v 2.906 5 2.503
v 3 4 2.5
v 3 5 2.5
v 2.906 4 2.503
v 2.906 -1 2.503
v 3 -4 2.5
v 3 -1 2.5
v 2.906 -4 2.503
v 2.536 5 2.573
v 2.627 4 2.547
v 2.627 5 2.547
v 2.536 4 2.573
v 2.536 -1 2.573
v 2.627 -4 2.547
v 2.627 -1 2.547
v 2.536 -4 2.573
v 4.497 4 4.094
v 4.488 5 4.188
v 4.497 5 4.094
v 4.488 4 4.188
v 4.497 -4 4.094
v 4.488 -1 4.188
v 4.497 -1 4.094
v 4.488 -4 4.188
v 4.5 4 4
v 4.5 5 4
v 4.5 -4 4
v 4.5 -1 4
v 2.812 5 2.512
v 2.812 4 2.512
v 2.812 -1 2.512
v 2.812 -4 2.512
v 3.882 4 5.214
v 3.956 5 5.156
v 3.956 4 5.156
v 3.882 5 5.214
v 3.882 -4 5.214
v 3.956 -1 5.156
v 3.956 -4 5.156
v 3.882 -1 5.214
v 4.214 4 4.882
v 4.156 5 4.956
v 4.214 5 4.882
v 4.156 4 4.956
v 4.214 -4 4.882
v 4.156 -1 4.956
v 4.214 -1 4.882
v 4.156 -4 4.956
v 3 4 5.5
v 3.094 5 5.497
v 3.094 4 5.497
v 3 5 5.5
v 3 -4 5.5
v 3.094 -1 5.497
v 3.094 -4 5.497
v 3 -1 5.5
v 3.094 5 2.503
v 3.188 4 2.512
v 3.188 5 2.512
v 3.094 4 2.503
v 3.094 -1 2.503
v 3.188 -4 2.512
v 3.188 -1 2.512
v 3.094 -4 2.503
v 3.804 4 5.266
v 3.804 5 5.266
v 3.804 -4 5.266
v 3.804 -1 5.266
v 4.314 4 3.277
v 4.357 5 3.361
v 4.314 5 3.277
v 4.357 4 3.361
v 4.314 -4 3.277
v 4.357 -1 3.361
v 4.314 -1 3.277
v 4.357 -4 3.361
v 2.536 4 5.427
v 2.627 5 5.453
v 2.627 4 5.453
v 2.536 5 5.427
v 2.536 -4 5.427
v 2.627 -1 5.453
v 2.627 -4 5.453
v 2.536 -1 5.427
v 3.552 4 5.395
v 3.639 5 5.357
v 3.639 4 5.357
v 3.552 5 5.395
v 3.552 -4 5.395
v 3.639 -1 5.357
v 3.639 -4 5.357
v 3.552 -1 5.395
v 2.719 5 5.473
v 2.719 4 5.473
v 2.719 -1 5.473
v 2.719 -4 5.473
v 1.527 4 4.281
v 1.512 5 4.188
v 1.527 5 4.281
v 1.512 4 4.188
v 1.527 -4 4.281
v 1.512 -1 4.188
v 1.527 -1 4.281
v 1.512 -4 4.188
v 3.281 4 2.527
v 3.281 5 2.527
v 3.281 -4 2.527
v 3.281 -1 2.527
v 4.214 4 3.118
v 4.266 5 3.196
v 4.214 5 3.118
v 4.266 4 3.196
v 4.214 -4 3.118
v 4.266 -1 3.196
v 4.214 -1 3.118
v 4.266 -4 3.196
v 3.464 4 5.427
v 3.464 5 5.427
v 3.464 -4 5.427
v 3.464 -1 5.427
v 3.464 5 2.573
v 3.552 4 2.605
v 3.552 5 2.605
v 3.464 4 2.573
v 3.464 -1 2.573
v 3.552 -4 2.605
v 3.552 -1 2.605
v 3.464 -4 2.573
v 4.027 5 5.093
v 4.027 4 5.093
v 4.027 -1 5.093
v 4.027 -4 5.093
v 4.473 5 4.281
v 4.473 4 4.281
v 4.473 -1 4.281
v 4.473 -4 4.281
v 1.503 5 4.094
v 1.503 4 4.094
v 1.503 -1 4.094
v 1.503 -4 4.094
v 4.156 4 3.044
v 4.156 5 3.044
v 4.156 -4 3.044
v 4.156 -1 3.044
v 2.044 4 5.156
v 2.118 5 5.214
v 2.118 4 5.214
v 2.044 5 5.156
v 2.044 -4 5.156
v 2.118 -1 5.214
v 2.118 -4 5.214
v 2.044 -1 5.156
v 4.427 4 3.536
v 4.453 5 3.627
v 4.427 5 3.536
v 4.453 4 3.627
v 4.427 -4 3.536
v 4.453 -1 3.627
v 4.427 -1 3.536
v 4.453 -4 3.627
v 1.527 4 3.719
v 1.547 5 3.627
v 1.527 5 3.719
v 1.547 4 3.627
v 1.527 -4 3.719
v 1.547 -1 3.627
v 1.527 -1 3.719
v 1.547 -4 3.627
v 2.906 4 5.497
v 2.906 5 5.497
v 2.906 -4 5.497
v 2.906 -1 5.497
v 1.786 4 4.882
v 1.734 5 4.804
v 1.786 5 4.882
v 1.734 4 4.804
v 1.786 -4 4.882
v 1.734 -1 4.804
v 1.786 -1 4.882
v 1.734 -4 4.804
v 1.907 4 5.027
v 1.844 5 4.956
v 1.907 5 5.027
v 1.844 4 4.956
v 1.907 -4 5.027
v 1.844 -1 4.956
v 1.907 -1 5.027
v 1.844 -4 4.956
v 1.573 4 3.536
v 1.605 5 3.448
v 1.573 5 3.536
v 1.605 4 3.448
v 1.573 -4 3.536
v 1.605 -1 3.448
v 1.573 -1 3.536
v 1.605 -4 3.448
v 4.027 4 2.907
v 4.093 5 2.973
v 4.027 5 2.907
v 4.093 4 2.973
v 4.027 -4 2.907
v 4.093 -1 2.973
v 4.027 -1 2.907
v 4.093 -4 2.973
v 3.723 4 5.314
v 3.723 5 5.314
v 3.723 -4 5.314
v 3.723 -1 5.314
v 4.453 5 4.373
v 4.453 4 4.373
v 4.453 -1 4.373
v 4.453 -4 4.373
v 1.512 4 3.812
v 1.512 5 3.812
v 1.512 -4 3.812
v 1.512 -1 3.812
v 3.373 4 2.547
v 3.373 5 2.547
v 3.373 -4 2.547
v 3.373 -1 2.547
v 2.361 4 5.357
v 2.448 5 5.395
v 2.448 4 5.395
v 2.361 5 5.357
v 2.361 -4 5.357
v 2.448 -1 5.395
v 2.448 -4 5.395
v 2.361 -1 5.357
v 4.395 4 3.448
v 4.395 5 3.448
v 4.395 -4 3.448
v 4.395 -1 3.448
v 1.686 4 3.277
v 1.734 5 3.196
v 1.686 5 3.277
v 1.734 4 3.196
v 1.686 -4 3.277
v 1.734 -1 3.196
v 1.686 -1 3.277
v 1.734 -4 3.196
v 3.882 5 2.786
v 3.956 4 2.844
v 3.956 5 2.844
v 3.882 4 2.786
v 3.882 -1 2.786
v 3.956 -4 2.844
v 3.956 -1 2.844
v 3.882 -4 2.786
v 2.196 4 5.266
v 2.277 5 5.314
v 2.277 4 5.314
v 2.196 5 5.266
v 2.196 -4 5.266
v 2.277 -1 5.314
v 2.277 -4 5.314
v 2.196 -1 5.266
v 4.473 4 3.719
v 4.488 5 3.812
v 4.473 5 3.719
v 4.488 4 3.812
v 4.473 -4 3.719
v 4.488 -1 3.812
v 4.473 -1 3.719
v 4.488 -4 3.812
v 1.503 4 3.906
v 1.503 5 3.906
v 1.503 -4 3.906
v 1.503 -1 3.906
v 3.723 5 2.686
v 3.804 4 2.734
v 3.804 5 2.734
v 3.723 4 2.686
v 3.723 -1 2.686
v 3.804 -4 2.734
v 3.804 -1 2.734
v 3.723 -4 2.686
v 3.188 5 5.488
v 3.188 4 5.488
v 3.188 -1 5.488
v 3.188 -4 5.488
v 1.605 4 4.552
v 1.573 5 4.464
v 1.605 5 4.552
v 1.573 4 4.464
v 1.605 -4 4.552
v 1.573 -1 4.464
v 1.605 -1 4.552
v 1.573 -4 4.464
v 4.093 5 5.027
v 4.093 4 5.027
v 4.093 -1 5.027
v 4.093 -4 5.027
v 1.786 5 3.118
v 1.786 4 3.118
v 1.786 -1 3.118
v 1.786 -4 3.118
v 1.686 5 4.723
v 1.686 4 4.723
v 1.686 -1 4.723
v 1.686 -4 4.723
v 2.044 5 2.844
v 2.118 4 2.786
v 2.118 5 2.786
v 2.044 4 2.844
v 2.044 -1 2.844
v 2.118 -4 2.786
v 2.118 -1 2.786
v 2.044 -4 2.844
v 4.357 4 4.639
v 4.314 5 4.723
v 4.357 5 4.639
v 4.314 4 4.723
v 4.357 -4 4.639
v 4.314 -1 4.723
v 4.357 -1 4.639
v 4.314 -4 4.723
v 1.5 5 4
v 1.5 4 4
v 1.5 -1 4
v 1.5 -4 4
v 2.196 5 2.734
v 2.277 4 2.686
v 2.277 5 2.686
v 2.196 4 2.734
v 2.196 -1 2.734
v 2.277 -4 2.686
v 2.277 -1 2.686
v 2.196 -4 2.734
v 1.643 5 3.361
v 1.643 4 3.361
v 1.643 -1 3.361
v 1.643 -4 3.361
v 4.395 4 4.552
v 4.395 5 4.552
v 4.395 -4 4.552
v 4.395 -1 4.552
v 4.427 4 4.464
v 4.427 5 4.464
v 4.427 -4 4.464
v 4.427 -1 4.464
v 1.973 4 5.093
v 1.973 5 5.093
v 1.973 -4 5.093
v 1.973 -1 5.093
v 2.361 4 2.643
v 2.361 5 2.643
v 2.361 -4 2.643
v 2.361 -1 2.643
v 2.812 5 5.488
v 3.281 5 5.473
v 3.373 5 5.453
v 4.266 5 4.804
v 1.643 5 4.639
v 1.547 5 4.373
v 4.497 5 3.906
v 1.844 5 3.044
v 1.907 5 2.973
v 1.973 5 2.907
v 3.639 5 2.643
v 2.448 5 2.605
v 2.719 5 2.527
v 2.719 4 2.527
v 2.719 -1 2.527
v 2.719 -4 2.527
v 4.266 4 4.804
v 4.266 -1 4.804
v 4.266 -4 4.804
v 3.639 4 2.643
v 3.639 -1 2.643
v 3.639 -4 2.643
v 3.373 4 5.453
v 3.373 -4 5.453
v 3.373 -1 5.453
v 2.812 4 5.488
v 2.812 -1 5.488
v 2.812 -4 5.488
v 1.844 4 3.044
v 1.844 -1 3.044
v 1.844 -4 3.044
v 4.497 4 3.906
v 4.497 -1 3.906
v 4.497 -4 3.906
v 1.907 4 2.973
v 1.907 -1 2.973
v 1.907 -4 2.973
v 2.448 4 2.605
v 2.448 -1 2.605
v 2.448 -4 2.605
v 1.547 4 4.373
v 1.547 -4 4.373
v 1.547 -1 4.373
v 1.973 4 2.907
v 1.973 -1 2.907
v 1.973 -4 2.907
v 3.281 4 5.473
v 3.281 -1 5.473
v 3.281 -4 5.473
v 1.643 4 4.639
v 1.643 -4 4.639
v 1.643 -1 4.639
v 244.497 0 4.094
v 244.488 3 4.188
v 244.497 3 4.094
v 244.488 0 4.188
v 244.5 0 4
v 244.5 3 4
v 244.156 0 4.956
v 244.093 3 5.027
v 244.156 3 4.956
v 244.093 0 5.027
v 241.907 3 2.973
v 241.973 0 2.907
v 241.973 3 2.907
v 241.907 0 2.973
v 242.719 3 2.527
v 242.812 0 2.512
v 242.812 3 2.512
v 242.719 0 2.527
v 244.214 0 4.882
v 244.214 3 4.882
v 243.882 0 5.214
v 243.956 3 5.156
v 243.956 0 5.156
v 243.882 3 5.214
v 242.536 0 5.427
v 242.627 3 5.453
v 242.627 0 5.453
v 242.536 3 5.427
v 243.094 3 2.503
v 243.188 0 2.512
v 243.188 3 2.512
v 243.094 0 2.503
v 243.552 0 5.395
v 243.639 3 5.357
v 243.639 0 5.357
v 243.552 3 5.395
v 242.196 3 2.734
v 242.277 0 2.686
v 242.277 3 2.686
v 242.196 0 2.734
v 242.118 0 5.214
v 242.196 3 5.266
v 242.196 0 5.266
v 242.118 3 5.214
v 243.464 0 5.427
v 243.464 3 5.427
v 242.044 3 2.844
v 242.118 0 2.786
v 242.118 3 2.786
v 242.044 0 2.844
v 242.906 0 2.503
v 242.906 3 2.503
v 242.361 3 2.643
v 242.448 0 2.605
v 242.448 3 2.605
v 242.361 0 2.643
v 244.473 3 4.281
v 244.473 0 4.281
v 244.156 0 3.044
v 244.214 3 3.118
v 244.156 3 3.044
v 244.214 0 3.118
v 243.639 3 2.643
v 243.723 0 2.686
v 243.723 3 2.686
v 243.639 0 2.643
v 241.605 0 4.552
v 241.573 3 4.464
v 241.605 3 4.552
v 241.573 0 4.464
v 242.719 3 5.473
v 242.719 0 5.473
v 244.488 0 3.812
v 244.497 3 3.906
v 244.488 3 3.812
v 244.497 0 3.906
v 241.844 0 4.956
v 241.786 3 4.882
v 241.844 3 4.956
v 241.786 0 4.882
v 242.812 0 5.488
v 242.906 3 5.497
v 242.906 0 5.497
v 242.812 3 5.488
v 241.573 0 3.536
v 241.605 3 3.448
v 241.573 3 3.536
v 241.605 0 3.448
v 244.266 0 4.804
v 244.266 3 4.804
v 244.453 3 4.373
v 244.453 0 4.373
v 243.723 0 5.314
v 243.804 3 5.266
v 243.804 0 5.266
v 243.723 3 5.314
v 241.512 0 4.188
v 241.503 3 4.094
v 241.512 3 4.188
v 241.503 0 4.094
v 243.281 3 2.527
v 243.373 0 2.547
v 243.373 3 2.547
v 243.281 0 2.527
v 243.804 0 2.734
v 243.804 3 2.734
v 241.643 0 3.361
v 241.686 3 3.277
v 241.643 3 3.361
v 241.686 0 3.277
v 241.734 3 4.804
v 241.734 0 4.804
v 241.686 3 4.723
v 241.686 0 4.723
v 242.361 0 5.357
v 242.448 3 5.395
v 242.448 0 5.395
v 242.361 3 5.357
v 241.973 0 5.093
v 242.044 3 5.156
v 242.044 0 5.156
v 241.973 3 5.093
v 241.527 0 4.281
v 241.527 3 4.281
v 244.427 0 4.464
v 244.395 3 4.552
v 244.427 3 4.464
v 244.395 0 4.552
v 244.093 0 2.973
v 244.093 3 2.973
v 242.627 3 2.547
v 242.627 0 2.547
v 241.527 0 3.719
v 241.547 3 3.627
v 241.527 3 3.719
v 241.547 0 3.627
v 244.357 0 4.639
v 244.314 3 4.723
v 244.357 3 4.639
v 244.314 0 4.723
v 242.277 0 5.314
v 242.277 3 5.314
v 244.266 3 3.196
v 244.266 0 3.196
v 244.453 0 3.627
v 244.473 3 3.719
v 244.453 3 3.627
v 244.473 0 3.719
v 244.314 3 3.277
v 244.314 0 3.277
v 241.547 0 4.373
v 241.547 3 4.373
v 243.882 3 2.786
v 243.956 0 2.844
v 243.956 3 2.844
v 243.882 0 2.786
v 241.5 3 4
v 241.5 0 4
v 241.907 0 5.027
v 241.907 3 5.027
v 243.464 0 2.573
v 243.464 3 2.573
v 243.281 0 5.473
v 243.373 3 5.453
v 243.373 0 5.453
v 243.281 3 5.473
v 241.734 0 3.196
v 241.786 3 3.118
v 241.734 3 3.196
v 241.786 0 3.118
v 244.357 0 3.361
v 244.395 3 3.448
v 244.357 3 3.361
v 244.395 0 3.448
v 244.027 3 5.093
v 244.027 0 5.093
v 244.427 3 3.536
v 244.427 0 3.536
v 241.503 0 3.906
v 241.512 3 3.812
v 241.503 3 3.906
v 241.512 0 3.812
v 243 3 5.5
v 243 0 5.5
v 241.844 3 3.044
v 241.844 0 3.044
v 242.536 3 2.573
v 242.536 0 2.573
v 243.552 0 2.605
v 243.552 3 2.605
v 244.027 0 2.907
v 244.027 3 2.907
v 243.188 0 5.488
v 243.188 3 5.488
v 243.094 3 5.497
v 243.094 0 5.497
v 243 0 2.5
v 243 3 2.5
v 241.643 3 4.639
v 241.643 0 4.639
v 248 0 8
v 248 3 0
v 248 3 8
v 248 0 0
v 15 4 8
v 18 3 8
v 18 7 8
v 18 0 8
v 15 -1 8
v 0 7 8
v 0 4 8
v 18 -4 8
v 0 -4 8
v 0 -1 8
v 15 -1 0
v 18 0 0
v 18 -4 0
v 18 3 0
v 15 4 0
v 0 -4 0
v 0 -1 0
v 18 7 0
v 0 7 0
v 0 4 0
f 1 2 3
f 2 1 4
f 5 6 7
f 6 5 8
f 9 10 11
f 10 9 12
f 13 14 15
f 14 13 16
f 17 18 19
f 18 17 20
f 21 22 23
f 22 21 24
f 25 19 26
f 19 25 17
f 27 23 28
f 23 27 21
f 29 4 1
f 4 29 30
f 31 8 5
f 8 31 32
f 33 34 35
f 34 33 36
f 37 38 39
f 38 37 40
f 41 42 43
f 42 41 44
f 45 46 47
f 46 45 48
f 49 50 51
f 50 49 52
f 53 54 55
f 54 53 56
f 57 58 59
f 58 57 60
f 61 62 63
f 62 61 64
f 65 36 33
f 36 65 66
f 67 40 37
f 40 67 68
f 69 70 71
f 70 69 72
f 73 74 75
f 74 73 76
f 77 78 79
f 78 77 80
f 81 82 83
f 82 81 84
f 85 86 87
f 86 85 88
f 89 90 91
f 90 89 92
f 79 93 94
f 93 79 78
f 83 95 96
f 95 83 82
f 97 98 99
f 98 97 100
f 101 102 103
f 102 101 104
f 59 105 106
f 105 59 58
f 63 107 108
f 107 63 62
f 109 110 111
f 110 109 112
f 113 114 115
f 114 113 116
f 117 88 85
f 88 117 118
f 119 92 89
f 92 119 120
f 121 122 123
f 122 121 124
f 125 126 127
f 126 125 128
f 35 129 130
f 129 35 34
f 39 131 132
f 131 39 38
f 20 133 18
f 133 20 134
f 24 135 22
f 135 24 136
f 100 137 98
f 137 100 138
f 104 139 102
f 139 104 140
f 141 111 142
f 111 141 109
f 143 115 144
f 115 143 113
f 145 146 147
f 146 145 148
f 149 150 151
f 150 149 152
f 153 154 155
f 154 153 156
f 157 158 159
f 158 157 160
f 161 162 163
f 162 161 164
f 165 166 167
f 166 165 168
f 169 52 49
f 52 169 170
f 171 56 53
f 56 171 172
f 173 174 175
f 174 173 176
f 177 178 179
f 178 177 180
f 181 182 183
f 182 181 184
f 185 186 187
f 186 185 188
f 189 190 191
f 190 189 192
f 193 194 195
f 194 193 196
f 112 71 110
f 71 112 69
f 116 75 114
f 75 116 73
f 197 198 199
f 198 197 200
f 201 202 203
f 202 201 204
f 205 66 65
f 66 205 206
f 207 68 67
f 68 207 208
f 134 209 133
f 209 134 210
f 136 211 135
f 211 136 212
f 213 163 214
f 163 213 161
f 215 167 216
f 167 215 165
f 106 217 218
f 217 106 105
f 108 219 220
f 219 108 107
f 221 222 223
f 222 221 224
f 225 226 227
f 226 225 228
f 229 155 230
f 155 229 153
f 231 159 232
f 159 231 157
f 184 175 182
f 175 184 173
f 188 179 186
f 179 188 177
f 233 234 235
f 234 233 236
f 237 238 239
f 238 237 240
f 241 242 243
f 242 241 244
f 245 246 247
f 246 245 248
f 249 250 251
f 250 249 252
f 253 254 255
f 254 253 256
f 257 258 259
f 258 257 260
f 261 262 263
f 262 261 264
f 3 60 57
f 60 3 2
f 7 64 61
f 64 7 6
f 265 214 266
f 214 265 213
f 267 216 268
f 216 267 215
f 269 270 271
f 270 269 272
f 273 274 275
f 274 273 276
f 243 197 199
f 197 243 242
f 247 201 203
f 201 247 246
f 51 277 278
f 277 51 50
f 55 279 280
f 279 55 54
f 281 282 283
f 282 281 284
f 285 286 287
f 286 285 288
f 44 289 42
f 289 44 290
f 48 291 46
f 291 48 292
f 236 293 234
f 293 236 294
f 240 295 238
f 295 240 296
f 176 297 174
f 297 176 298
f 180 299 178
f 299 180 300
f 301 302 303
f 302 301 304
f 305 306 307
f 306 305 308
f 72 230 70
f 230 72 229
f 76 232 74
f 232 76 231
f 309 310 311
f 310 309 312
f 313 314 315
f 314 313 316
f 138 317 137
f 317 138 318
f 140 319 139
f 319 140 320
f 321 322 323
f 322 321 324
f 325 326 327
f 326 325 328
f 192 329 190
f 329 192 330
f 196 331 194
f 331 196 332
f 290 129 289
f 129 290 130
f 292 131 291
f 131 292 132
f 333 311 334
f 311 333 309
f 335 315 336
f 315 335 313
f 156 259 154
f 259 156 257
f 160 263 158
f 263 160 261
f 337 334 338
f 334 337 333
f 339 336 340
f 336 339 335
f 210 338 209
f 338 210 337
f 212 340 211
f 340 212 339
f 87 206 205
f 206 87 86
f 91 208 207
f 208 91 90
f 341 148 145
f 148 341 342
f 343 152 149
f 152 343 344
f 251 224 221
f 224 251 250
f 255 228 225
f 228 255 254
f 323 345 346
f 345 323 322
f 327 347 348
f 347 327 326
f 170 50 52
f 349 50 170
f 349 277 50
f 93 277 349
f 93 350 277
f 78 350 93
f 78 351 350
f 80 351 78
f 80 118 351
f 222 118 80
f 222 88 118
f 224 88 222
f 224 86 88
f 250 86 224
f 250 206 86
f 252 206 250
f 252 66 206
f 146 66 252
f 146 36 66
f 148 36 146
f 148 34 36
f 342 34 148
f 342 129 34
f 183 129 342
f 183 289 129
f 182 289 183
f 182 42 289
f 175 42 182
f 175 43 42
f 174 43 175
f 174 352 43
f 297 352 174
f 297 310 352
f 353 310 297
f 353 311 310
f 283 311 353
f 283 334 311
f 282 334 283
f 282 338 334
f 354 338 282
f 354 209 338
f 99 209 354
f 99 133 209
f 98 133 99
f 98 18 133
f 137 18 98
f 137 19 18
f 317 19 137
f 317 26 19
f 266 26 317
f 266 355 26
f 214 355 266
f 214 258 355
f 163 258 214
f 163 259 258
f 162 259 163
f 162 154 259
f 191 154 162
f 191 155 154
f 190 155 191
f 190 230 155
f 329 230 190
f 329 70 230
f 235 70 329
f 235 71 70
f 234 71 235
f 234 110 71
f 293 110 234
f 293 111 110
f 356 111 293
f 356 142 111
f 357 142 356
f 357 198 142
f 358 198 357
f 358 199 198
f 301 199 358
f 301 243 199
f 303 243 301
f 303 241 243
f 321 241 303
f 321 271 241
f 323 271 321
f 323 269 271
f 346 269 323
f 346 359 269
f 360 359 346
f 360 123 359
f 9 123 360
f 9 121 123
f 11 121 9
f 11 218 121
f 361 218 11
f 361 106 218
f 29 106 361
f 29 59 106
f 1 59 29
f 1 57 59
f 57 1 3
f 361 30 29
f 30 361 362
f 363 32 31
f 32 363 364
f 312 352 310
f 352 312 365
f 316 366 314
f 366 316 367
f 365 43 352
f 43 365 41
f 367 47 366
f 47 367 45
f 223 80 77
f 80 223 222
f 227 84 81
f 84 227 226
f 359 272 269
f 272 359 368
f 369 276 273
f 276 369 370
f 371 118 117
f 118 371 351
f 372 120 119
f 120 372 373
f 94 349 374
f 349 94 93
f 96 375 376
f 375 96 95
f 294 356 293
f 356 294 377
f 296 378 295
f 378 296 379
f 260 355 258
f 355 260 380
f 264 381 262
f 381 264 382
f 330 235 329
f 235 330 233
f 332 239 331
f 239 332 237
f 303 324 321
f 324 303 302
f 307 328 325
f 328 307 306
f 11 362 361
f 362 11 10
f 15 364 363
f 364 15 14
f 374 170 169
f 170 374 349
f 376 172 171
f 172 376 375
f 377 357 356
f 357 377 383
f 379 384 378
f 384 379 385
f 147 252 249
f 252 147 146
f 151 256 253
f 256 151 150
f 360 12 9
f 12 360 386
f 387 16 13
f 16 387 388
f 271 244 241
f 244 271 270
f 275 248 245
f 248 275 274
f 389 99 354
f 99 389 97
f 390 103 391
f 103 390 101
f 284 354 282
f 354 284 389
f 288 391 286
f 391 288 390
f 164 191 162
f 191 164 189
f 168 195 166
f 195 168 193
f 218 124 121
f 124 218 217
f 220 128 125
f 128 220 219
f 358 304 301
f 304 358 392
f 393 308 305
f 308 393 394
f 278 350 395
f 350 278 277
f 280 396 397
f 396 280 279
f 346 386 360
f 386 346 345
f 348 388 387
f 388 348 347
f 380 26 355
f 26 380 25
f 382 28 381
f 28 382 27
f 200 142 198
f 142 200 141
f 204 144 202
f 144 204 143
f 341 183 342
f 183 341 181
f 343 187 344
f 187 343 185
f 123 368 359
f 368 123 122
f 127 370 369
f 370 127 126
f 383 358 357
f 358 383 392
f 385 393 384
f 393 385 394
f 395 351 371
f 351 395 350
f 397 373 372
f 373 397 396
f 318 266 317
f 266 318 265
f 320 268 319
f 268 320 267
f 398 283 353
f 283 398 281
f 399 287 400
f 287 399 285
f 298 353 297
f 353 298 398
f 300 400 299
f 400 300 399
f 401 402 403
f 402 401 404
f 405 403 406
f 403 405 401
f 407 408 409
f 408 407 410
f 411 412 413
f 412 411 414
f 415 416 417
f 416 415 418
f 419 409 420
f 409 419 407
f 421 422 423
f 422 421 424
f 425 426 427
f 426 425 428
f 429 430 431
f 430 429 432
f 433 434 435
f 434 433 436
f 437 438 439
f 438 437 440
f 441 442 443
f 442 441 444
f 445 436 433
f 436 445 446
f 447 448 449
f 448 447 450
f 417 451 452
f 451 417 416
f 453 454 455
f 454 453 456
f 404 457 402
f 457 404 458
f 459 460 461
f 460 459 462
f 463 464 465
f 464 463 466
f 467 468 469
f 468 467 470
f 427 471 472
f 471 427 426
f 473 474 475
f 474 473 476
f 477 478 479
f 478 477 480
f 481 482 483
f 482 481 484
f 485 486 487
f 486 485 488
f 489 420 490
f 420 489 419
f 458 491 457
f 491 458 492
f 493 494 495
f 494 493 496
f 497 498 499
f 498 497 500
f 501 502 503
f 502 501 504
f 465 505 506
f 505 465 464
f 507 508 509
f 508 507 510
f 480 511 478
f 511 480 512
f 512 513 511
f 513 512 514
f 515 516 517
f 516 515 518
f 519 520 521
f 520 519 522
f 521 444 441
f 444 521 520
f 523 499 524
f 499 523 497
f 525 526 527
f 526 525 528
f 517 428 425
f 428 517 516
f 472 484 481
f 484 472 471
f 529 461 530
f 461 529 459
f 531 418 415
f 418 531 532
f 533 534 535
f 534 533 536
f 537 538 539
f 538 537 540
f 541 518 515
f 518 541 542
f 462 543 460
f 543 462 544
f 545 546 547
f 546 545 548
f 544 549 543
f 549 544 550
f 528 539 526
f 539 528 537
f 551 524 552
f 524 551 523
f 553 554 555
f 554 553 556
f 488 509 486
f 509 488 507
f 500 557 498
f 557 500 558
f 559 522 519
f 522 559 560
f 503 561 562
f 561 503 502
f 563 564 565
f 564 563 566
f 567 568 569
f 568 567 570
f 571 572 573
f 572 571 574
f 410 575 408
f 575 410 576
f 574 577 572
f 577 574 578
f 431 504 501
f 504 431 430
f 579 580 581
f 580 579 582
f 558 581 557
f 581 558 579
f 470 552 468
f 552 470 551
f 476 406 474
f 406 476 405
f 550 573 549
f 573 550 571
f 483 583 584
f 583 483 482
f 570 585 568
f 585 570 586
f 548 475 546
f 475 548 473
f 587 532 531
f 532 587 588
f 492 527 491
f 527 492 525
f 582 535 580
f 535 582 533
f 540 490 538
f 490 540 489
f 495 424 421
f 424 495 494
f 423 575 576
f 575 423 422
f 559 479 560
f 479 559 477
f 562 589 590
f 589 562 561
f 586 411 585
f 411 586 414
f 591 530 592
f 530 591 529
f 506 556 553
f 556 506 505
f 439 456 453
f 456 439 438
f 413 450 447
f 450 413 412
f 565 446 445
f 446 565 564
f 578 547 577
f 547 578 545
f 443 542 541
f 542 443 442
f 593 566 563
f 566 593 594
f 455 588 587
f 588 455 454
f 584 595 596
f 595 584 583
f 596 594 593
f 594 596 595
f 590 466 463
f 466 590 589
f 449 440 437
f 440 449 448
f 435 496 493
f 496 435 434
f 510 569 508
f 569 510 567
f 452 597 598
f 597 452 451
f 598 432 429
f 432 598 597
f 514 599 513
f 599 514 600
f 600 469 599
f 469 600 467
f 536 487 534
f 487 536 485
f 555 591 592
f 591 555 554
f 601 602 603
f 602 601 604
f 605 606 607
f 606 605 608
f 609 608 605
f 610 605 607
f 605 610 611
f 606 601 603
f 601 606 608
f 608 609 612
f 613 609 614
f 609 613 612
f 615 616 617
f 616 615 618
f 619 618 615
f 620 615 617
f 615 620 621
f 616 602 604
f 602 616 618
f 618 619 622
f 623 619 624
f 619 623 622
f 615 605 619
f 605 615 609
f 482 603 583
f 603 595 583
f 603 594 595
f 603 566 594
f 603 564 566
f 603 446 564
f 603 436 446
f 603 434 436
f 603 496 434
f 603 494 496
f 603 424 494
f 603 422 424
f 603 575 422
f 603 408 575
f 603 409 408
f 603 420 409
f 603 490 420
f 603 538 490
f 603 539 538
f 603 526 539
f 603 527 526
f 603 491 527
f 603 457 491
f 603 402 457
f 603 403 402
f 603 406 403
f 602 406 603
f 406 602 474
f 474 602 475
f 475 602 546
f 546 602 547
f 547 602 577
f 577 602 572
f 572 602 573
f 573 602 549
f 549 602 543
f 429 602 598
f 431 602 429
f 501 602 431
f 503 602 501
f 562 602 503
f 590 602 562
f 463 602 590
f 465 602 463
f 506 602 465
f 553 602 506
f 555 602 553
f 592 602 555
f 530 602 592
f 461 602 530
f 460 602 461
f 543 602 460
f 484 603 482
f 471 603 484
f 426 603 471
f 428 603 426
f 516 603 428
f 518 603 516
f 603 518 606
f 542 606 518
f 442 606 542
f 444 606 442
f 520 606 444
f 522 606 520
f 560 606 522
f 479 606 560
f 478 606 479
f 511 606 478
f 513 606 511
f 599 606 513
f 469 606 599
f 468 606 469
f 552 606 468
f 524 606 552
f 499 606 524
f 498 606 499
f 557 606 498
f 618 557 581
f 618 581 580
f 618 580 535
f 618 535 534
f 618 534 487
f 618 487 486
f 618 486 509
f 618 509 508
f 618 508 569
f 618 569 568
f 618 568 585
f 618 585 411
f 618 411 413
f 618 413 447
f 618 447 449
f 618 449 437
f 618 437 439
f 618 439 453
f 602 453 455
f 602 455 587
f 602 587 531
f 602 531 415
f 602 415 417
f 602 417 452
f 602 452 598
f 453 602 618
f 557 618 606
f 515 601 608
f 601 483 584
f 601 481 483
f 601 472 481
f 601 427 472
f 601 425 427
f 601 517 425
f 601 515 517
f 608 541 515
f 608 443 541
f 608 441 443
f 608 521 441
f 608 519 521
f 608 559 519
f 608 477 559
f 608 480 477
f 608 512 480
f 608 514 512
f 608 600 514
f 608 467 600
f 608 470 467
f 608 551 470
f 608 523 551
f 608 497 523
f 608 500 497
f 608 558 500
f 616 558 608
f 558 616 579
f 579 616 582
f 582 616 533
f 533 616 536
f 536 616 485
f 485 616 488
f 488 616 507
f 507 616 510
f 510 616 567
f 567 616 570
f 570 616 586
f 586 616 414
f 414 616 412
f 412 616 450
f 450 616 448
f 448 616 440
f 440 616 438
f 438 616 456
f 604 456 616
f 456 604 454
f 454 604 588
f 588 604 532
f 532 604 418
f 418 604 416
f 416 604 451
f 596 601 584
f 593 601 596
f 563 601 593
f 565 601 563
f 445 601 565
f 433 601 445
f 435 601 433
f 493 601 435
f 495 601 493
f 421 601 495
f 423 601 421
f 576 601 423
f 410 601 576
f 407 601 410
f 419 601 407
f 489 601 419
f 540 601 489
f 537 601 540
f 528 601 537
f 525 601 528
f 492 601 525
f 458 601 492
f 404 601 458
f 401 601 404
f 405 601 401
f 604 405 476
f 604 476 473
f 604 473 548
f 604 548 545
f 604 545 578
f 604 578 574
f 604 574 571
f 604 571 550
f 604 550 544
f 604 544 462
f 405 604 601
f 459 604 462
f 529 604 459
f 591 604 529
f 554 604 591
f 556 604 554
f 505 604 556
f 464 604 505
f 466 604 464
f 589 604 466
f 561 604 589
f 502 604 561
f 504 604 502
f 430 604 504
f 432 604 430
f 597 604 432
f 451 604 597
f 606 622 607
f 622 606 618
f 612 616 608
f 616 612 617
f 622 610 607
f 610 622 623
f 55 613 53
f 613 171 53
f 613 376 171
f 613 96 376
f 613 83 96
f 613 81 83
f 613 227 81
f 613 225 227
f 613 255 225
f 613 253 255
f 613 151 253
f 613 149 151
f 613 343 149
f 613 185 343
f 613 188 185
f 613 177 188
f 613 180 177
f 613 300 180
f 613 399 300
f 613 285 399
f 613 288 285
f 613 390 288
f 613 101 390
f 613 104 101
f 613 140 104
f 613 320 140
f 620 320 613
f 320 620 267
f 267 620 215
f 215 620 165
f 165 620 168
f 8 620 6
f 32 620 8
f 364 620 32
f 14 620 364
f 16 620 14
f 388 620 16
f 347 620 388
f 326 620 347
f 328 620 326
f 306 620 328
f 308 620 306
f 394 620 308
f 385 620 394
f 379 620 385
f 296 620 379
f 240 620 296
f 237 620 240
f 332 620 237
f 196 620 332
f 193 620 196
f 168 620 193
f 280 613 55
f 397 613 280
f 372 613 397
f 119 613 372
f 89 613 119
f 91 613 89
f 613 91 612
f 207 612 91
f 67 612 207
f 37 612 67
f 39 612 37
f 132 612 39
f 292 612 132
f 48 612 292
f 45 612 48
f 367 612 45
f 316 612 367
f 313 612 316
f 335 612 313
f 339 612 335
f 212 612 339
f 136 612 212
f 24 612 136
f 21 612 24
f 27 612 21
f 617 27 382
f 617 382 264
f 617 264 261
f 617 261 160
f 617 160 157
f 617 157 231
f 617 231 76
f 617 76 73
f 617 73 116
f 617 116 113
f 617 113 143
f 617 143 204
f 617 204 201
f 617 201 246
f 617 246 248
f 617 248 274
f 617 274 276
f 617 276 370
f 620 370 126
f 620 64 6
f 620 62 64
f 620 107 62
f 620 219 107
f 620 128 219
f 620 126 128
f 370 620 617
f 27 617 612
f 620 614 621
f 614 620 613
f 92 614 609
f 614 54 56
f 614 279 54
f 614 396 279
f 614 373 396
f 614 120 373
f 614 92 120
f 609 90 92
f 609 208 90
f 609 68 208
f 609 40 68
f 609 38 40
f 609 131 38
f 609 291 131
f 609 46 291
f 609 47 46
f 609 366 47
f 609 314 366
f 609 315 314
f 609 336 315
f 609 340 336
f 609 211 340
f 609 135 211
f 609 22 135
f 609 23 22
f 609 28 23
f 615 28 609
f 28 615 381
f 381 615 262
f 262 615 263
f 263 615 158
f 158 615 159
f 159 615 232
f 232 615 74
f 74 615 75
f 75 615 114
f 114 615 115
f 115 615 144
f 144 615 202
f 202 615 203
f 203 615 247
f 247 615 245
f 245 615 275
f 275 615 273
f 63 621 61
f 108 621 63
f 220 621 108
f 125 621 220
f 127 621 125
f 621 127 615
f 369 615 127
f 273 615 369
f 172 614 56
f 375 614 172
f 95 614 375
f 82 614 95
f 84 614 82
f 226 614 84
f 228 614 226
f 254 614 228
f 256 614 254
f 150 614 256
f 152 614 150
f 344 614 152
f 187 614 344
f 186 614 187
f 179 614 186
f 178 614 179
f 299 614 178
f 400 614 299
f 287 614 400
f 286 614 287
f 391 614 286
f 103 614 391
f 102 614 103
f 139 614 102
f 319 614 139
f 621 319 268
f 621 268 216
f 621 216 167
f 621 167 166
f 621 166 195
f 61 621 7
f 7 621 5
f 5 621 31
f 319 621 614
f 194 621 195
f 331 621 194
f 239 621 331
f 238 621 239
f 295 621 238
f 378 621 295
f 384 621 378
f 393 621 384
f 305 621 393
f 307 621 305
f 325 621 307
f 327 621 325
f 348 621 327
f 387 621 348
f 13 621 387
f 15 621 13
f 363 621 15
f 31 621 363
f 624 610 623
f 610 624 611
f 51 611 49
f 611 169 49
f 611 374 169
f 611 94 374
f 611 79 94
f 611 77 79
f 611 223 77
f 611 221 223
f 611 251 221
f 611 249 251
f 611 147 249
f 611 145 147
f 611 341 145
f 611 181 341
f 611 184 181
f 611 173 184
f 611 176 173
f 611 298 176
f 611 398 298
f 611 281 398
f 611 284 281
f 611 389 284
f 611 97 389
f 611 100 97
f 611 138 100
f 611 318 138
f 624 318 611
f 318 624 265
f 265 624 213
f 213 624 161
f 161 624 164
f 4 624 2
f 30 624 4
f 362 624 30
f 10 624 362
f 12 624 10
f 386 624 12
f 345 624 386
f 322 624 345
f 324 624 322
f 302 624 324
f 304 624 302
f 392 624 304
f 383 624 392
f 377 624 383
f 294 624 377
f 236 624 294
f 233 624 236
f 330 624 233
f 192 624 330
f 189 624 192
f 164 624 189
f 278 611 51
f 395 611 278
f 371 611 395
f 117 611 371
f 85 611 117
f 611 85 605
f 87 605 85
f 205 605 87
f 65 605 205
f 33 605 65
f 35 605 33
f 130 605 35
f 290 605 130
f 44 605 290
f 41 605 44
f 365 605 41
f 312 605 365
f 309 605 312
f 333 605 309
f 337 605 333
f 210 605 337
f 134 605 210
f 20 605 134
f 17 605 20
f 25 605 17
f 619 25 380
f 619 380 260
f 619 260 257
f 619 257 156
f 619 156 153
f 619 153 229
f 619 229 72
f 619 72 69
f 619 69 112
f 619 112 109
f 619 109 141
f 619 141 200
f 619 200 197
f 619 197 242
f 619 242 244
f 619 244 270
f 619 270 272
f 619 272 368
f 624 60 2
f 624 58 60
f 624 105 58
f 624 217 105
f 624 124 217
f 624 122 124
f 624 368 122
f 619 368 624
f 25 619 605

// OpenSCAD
difference(){
	union(){

        translate([15,0,0]){
            cube([250-17,3,8], center=false);
        }         
        translate([15,-4,0]){
            cube([3,11,8], center=false);
        }         

        translate([0,-4,0]){
            cube([15,3,8], center=false);
        }         
        translate([0,4,0]){
            cube([15,3,8], center=false);
        }         

	}
	union() {
        translate([3,5,4]){
            rotate([90,0,0]){
                cylinder(h=117, r=1.5, $fn=100, center=false);
            }
        }         
        translate([3+240,5,4]){
            rotate([90,0,0]){
                cylinder(h=117, r=1.5, $fn=100, center=false);
            }
        }         

        
	}
}
